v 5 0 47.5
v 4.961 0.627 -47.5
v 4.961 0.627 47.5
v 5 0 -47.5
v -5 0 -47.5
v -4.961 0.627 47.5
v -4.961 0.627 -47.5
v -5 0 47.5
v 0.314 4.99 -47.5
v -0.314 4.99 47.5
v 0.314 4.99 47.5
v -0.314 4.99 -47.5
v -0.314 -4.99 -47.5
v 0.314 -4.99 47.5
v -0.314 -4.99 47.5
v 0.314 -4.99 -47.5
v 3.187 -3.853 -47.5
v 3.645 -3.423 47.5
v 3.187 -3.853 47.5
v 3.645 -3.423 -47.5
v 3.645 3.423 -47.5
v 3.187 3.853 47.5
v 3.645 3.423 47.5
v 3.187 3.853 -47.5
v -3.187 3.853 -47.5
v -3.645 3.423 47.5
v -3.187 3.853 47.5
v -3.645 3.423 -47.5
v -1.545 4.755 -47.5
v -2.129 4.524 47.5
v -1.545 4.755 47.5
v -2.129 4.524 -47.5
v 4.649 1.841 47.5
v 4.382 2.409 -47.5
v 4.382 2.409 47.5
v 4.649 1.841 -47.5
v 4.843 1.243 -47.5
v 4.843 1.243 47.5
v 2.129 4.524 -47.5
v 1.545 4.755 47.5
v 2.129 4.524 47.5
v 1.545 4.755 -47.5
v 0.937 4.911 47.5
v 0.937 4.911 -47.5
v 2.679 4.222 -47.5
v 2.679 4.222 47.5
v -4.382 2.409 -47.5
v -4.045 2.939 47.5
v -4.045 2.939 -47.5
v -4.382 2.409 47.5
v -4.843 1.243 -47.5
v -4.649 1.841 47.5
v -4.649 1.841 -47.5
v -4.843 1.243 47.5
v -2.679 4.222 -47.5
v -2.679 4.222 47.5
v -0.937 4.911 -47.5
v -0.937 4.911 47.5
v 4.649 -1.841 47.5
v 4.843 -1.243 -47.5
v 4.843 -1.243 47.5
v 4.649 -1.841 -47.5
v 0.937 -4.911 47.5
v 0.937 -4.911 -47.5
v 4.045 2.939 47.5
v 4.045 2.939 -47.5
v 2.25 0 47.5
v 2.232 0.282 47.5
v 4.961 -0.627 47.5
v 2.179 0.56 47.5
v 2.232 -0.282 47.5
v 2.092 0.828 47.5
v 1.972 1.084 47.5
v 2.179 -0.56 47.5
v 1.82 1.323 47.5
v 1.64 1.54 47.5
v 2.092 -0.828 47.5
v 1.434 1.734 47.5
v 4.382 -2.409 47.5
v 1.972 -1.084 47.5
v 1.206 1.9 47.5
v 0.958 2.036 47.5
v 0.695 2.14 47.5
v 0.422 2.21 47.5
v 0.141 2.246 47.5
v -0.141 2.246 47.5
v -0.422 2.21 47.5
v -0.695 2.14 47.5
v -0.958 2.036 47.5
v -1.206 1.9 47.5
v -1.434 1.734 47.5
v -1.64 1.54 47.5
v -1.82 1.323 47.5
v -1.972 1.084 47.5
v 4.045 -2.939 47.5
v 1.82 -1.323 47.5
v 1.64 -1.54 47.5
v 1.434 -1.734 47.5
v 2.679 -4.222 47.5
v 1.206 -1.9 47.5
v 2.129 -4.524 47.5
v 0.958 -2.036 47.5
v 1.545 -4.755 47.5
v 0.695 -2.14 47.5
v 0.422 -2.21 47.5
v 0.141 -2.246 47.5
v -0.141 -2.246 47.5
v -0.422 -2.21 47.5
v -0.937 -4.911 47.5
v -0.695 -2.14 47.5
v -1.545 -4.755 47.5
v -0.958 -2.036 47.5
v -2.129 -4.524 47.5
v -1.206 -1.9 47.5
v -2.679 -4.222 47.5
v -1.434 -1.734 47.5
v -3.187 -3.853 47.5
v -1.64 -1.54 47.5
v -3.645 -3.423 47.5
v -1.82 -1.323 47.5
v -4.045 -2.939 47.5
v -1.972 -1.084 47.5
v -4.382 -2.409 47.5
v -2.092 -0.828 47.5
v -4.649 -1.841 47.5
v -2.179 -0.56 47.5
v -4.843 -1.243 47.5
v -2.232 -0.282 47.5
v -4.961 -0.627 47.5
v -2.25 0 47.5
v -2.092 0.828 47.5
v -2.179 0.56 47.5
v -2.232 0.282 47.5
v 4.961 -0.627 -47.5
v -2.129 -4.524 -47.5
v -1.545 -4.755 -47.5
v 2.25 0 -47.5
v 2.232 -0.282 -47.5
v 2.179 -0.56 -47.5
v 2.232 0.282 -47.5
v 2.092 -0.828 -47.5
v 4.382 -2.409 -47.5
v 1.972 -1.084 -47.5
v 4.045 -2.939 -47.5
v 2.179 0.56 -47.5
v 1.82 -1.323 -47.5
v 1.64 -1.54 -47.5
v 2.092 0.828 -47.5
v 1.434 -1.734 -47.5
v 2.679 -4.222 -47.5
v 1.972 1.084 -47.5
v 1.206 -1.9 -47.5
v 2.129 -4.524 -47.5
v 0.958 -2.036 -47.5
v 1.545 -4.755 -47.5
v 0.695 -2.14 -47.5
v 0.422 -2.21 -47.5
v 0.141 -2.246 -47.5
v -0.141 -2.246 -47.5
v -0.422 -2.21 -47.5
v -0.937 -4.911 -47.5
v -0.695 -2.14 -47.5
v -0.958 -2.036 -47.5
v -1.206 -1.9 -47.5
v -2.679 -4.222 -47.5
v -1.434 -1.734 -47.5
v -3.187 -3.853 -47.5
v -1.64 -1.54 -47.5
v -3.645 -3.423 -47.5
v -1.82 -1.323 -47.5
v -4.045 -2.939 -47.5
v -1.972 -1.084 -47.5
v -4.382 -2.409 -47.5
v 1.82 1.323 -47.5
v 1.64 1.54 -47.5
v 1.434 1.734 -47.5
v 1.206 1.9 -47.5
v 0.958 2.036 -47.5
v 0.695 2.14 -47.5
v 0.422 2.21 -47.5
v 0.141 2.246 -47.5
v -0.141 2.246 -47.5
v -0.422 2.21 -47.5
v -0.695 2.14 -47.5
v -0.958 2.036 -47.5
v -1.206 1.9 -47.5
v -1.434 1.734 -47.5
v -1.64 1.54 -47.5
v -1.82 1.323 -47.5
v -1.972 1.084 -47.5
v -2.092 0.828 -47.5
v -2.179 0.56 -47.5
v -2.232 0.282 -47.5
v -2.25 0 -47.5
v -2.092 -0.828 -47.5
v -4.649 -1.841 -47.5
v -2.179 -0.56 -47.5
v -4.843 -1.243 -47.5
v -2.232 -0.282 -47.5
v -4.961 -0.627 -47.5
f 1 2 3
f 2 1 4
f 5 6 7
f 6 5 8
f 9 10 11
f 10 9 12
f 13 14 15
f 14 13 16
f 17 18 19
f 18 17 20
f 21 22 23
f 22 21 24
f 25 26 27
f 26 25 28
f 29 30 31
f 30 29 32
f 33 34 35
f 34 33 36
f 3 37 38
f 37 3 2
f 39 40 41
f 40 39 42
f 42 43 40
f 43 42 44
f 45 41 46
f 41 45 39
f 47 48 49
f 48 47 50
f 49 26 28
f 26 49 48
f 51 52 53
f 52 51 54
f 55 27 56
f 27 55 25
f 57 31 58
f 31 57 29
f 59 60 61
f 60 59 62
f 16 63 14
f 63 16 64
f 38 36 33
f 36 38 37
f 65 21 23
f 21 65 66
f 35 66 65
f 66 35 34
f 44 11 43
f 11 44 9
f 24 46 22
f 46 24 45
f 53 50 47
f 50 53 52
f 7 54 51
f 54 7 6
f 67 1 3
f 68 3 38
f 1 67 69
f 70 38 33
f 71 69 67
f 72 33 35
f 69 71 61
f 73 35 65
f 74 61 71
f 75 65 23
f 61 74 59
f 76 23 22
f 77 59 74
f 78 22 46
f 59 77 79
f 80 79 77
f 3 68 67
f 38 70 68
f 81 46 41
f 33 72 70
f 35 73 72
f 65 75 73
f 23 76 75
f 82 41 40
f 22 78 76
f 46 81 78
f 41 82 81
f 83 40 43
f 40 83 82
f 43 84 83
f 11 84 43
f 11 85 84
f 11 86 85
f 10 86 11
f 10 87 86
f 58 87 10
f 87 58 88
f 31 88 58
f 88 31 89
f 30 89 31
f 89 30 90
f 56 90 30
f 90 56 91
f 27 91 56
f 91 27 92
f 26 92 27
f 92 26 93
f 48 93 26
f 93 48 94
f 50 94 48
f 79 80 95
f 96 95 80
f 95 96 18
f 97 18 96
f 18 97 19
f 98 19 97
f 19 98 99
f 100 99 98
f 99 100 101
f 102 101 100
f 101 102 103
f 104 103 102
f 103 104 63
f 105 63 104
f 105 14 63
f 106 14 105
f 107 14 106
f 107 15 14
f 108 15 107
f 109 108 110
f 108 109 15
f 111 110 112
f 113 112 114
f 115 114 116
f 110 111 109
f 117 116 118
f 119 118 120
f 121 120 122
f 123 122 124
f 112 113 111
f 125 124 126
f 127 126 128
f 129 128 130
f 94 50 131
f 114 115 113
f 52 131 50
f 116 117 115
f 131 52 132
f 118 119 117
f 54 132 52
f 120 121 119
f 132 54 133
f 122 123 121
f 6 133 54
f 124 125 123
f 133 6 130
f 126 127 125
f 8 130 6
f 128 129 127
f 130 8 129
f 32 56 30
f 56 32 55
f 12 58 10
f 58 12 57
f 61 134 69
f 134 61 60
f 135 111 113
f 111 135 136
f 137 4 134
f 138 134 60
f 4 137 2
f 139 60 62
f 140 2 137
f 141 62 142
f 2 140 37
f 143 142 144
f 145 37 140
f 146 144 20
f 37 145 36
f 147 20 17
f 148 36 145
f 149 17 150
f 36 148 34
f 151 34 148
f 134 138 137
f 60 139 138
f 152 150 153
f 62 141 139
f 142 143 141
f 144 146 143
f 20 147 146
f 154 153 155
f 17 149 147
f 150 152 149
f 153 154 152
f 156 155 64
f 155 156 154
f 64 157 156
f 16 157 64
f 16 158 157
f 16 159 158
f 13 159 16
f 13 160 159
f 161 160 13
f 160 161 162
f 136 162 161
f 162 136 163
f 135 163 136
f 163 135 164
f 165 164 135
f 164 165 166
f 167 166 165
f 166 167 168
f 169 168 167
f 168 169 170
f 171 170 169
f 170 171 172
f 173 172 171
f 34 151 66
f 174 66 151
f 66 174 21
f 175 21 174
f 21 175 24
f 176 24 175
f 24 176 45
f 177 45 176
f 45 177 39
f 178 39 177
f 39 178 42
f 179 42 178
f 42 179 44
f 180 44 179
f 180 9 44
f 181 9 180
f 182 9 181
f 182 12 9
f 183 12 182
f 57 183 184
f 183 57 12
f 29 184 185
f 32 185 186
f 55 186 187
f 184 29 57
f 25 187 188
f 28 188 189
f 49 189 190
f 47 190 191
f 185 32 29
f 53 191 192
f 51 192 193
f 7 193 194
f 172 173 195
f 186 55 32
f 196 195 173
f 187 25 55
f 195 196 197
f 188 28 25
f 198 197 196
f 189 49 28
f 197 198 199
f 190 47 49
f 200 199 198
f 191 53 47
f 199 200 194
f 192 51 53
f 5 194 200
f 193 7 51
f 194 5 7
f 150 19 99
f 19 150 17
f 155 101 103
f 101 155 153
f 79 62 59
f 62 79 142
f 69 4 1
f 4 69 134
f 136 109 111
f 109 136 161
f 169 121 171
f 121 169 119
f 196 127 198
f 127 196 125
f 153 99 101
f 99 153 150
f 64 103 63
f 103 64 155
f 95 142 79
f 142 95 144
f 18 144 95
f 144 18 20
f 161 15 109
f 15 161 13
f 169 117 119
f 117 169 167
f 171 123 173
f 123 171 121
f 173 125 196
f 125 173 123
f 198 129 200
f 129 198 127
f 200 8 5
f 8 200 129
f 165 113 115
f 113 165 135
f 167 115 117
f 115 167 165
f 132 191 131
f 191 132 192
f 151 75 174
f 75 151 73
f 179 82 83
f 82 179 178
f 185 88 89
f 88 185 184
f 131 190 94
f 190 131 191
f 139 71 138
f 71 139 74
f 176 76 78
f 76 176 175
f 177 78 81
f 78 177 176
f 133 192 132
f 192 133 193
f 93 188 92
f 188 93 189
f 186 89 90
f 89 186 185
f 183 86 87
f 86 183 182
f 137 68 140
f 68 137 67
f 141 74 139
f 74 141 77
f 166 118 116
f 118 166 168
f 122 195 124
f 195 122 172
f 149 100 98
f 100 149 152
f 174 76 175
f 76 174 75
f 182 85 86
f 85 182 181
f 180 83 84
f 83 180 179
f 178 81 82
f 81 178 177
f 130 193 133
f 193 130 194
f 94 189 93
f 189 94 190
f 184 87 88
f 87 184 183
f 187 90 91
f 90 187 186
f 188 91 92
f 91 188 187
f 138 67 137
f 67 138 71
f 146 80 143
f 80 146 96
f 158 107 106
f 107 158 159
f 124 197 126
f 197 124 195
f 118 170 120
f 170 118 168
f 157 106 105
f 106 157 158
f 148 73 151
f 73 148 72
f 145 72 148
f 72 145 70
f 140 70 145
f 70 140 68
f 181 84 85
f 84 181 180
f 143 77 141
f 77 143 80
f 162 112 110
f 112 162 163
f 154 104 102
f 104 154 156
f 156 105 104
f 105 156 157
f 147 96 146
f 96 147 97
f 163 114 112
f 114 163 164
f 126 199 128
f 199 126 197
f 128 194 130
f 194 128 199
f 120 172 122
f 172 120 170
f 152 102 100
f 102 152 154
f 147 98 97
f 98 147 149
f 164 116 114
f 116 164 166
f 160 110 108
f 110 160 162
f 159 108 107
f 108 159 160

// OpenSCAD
$fn = 50;


difference() {
	union() {
		translate(v = [0, 0, -47.5000000000]) {
			cylinder(h = 95, r = 5.0000000000);
		}
	}
	union() {
		translate(v = [0, 0, -100.0000000000]) {
			cylinder(h = 200, r = 2.2500000000);
		}
	}
}
